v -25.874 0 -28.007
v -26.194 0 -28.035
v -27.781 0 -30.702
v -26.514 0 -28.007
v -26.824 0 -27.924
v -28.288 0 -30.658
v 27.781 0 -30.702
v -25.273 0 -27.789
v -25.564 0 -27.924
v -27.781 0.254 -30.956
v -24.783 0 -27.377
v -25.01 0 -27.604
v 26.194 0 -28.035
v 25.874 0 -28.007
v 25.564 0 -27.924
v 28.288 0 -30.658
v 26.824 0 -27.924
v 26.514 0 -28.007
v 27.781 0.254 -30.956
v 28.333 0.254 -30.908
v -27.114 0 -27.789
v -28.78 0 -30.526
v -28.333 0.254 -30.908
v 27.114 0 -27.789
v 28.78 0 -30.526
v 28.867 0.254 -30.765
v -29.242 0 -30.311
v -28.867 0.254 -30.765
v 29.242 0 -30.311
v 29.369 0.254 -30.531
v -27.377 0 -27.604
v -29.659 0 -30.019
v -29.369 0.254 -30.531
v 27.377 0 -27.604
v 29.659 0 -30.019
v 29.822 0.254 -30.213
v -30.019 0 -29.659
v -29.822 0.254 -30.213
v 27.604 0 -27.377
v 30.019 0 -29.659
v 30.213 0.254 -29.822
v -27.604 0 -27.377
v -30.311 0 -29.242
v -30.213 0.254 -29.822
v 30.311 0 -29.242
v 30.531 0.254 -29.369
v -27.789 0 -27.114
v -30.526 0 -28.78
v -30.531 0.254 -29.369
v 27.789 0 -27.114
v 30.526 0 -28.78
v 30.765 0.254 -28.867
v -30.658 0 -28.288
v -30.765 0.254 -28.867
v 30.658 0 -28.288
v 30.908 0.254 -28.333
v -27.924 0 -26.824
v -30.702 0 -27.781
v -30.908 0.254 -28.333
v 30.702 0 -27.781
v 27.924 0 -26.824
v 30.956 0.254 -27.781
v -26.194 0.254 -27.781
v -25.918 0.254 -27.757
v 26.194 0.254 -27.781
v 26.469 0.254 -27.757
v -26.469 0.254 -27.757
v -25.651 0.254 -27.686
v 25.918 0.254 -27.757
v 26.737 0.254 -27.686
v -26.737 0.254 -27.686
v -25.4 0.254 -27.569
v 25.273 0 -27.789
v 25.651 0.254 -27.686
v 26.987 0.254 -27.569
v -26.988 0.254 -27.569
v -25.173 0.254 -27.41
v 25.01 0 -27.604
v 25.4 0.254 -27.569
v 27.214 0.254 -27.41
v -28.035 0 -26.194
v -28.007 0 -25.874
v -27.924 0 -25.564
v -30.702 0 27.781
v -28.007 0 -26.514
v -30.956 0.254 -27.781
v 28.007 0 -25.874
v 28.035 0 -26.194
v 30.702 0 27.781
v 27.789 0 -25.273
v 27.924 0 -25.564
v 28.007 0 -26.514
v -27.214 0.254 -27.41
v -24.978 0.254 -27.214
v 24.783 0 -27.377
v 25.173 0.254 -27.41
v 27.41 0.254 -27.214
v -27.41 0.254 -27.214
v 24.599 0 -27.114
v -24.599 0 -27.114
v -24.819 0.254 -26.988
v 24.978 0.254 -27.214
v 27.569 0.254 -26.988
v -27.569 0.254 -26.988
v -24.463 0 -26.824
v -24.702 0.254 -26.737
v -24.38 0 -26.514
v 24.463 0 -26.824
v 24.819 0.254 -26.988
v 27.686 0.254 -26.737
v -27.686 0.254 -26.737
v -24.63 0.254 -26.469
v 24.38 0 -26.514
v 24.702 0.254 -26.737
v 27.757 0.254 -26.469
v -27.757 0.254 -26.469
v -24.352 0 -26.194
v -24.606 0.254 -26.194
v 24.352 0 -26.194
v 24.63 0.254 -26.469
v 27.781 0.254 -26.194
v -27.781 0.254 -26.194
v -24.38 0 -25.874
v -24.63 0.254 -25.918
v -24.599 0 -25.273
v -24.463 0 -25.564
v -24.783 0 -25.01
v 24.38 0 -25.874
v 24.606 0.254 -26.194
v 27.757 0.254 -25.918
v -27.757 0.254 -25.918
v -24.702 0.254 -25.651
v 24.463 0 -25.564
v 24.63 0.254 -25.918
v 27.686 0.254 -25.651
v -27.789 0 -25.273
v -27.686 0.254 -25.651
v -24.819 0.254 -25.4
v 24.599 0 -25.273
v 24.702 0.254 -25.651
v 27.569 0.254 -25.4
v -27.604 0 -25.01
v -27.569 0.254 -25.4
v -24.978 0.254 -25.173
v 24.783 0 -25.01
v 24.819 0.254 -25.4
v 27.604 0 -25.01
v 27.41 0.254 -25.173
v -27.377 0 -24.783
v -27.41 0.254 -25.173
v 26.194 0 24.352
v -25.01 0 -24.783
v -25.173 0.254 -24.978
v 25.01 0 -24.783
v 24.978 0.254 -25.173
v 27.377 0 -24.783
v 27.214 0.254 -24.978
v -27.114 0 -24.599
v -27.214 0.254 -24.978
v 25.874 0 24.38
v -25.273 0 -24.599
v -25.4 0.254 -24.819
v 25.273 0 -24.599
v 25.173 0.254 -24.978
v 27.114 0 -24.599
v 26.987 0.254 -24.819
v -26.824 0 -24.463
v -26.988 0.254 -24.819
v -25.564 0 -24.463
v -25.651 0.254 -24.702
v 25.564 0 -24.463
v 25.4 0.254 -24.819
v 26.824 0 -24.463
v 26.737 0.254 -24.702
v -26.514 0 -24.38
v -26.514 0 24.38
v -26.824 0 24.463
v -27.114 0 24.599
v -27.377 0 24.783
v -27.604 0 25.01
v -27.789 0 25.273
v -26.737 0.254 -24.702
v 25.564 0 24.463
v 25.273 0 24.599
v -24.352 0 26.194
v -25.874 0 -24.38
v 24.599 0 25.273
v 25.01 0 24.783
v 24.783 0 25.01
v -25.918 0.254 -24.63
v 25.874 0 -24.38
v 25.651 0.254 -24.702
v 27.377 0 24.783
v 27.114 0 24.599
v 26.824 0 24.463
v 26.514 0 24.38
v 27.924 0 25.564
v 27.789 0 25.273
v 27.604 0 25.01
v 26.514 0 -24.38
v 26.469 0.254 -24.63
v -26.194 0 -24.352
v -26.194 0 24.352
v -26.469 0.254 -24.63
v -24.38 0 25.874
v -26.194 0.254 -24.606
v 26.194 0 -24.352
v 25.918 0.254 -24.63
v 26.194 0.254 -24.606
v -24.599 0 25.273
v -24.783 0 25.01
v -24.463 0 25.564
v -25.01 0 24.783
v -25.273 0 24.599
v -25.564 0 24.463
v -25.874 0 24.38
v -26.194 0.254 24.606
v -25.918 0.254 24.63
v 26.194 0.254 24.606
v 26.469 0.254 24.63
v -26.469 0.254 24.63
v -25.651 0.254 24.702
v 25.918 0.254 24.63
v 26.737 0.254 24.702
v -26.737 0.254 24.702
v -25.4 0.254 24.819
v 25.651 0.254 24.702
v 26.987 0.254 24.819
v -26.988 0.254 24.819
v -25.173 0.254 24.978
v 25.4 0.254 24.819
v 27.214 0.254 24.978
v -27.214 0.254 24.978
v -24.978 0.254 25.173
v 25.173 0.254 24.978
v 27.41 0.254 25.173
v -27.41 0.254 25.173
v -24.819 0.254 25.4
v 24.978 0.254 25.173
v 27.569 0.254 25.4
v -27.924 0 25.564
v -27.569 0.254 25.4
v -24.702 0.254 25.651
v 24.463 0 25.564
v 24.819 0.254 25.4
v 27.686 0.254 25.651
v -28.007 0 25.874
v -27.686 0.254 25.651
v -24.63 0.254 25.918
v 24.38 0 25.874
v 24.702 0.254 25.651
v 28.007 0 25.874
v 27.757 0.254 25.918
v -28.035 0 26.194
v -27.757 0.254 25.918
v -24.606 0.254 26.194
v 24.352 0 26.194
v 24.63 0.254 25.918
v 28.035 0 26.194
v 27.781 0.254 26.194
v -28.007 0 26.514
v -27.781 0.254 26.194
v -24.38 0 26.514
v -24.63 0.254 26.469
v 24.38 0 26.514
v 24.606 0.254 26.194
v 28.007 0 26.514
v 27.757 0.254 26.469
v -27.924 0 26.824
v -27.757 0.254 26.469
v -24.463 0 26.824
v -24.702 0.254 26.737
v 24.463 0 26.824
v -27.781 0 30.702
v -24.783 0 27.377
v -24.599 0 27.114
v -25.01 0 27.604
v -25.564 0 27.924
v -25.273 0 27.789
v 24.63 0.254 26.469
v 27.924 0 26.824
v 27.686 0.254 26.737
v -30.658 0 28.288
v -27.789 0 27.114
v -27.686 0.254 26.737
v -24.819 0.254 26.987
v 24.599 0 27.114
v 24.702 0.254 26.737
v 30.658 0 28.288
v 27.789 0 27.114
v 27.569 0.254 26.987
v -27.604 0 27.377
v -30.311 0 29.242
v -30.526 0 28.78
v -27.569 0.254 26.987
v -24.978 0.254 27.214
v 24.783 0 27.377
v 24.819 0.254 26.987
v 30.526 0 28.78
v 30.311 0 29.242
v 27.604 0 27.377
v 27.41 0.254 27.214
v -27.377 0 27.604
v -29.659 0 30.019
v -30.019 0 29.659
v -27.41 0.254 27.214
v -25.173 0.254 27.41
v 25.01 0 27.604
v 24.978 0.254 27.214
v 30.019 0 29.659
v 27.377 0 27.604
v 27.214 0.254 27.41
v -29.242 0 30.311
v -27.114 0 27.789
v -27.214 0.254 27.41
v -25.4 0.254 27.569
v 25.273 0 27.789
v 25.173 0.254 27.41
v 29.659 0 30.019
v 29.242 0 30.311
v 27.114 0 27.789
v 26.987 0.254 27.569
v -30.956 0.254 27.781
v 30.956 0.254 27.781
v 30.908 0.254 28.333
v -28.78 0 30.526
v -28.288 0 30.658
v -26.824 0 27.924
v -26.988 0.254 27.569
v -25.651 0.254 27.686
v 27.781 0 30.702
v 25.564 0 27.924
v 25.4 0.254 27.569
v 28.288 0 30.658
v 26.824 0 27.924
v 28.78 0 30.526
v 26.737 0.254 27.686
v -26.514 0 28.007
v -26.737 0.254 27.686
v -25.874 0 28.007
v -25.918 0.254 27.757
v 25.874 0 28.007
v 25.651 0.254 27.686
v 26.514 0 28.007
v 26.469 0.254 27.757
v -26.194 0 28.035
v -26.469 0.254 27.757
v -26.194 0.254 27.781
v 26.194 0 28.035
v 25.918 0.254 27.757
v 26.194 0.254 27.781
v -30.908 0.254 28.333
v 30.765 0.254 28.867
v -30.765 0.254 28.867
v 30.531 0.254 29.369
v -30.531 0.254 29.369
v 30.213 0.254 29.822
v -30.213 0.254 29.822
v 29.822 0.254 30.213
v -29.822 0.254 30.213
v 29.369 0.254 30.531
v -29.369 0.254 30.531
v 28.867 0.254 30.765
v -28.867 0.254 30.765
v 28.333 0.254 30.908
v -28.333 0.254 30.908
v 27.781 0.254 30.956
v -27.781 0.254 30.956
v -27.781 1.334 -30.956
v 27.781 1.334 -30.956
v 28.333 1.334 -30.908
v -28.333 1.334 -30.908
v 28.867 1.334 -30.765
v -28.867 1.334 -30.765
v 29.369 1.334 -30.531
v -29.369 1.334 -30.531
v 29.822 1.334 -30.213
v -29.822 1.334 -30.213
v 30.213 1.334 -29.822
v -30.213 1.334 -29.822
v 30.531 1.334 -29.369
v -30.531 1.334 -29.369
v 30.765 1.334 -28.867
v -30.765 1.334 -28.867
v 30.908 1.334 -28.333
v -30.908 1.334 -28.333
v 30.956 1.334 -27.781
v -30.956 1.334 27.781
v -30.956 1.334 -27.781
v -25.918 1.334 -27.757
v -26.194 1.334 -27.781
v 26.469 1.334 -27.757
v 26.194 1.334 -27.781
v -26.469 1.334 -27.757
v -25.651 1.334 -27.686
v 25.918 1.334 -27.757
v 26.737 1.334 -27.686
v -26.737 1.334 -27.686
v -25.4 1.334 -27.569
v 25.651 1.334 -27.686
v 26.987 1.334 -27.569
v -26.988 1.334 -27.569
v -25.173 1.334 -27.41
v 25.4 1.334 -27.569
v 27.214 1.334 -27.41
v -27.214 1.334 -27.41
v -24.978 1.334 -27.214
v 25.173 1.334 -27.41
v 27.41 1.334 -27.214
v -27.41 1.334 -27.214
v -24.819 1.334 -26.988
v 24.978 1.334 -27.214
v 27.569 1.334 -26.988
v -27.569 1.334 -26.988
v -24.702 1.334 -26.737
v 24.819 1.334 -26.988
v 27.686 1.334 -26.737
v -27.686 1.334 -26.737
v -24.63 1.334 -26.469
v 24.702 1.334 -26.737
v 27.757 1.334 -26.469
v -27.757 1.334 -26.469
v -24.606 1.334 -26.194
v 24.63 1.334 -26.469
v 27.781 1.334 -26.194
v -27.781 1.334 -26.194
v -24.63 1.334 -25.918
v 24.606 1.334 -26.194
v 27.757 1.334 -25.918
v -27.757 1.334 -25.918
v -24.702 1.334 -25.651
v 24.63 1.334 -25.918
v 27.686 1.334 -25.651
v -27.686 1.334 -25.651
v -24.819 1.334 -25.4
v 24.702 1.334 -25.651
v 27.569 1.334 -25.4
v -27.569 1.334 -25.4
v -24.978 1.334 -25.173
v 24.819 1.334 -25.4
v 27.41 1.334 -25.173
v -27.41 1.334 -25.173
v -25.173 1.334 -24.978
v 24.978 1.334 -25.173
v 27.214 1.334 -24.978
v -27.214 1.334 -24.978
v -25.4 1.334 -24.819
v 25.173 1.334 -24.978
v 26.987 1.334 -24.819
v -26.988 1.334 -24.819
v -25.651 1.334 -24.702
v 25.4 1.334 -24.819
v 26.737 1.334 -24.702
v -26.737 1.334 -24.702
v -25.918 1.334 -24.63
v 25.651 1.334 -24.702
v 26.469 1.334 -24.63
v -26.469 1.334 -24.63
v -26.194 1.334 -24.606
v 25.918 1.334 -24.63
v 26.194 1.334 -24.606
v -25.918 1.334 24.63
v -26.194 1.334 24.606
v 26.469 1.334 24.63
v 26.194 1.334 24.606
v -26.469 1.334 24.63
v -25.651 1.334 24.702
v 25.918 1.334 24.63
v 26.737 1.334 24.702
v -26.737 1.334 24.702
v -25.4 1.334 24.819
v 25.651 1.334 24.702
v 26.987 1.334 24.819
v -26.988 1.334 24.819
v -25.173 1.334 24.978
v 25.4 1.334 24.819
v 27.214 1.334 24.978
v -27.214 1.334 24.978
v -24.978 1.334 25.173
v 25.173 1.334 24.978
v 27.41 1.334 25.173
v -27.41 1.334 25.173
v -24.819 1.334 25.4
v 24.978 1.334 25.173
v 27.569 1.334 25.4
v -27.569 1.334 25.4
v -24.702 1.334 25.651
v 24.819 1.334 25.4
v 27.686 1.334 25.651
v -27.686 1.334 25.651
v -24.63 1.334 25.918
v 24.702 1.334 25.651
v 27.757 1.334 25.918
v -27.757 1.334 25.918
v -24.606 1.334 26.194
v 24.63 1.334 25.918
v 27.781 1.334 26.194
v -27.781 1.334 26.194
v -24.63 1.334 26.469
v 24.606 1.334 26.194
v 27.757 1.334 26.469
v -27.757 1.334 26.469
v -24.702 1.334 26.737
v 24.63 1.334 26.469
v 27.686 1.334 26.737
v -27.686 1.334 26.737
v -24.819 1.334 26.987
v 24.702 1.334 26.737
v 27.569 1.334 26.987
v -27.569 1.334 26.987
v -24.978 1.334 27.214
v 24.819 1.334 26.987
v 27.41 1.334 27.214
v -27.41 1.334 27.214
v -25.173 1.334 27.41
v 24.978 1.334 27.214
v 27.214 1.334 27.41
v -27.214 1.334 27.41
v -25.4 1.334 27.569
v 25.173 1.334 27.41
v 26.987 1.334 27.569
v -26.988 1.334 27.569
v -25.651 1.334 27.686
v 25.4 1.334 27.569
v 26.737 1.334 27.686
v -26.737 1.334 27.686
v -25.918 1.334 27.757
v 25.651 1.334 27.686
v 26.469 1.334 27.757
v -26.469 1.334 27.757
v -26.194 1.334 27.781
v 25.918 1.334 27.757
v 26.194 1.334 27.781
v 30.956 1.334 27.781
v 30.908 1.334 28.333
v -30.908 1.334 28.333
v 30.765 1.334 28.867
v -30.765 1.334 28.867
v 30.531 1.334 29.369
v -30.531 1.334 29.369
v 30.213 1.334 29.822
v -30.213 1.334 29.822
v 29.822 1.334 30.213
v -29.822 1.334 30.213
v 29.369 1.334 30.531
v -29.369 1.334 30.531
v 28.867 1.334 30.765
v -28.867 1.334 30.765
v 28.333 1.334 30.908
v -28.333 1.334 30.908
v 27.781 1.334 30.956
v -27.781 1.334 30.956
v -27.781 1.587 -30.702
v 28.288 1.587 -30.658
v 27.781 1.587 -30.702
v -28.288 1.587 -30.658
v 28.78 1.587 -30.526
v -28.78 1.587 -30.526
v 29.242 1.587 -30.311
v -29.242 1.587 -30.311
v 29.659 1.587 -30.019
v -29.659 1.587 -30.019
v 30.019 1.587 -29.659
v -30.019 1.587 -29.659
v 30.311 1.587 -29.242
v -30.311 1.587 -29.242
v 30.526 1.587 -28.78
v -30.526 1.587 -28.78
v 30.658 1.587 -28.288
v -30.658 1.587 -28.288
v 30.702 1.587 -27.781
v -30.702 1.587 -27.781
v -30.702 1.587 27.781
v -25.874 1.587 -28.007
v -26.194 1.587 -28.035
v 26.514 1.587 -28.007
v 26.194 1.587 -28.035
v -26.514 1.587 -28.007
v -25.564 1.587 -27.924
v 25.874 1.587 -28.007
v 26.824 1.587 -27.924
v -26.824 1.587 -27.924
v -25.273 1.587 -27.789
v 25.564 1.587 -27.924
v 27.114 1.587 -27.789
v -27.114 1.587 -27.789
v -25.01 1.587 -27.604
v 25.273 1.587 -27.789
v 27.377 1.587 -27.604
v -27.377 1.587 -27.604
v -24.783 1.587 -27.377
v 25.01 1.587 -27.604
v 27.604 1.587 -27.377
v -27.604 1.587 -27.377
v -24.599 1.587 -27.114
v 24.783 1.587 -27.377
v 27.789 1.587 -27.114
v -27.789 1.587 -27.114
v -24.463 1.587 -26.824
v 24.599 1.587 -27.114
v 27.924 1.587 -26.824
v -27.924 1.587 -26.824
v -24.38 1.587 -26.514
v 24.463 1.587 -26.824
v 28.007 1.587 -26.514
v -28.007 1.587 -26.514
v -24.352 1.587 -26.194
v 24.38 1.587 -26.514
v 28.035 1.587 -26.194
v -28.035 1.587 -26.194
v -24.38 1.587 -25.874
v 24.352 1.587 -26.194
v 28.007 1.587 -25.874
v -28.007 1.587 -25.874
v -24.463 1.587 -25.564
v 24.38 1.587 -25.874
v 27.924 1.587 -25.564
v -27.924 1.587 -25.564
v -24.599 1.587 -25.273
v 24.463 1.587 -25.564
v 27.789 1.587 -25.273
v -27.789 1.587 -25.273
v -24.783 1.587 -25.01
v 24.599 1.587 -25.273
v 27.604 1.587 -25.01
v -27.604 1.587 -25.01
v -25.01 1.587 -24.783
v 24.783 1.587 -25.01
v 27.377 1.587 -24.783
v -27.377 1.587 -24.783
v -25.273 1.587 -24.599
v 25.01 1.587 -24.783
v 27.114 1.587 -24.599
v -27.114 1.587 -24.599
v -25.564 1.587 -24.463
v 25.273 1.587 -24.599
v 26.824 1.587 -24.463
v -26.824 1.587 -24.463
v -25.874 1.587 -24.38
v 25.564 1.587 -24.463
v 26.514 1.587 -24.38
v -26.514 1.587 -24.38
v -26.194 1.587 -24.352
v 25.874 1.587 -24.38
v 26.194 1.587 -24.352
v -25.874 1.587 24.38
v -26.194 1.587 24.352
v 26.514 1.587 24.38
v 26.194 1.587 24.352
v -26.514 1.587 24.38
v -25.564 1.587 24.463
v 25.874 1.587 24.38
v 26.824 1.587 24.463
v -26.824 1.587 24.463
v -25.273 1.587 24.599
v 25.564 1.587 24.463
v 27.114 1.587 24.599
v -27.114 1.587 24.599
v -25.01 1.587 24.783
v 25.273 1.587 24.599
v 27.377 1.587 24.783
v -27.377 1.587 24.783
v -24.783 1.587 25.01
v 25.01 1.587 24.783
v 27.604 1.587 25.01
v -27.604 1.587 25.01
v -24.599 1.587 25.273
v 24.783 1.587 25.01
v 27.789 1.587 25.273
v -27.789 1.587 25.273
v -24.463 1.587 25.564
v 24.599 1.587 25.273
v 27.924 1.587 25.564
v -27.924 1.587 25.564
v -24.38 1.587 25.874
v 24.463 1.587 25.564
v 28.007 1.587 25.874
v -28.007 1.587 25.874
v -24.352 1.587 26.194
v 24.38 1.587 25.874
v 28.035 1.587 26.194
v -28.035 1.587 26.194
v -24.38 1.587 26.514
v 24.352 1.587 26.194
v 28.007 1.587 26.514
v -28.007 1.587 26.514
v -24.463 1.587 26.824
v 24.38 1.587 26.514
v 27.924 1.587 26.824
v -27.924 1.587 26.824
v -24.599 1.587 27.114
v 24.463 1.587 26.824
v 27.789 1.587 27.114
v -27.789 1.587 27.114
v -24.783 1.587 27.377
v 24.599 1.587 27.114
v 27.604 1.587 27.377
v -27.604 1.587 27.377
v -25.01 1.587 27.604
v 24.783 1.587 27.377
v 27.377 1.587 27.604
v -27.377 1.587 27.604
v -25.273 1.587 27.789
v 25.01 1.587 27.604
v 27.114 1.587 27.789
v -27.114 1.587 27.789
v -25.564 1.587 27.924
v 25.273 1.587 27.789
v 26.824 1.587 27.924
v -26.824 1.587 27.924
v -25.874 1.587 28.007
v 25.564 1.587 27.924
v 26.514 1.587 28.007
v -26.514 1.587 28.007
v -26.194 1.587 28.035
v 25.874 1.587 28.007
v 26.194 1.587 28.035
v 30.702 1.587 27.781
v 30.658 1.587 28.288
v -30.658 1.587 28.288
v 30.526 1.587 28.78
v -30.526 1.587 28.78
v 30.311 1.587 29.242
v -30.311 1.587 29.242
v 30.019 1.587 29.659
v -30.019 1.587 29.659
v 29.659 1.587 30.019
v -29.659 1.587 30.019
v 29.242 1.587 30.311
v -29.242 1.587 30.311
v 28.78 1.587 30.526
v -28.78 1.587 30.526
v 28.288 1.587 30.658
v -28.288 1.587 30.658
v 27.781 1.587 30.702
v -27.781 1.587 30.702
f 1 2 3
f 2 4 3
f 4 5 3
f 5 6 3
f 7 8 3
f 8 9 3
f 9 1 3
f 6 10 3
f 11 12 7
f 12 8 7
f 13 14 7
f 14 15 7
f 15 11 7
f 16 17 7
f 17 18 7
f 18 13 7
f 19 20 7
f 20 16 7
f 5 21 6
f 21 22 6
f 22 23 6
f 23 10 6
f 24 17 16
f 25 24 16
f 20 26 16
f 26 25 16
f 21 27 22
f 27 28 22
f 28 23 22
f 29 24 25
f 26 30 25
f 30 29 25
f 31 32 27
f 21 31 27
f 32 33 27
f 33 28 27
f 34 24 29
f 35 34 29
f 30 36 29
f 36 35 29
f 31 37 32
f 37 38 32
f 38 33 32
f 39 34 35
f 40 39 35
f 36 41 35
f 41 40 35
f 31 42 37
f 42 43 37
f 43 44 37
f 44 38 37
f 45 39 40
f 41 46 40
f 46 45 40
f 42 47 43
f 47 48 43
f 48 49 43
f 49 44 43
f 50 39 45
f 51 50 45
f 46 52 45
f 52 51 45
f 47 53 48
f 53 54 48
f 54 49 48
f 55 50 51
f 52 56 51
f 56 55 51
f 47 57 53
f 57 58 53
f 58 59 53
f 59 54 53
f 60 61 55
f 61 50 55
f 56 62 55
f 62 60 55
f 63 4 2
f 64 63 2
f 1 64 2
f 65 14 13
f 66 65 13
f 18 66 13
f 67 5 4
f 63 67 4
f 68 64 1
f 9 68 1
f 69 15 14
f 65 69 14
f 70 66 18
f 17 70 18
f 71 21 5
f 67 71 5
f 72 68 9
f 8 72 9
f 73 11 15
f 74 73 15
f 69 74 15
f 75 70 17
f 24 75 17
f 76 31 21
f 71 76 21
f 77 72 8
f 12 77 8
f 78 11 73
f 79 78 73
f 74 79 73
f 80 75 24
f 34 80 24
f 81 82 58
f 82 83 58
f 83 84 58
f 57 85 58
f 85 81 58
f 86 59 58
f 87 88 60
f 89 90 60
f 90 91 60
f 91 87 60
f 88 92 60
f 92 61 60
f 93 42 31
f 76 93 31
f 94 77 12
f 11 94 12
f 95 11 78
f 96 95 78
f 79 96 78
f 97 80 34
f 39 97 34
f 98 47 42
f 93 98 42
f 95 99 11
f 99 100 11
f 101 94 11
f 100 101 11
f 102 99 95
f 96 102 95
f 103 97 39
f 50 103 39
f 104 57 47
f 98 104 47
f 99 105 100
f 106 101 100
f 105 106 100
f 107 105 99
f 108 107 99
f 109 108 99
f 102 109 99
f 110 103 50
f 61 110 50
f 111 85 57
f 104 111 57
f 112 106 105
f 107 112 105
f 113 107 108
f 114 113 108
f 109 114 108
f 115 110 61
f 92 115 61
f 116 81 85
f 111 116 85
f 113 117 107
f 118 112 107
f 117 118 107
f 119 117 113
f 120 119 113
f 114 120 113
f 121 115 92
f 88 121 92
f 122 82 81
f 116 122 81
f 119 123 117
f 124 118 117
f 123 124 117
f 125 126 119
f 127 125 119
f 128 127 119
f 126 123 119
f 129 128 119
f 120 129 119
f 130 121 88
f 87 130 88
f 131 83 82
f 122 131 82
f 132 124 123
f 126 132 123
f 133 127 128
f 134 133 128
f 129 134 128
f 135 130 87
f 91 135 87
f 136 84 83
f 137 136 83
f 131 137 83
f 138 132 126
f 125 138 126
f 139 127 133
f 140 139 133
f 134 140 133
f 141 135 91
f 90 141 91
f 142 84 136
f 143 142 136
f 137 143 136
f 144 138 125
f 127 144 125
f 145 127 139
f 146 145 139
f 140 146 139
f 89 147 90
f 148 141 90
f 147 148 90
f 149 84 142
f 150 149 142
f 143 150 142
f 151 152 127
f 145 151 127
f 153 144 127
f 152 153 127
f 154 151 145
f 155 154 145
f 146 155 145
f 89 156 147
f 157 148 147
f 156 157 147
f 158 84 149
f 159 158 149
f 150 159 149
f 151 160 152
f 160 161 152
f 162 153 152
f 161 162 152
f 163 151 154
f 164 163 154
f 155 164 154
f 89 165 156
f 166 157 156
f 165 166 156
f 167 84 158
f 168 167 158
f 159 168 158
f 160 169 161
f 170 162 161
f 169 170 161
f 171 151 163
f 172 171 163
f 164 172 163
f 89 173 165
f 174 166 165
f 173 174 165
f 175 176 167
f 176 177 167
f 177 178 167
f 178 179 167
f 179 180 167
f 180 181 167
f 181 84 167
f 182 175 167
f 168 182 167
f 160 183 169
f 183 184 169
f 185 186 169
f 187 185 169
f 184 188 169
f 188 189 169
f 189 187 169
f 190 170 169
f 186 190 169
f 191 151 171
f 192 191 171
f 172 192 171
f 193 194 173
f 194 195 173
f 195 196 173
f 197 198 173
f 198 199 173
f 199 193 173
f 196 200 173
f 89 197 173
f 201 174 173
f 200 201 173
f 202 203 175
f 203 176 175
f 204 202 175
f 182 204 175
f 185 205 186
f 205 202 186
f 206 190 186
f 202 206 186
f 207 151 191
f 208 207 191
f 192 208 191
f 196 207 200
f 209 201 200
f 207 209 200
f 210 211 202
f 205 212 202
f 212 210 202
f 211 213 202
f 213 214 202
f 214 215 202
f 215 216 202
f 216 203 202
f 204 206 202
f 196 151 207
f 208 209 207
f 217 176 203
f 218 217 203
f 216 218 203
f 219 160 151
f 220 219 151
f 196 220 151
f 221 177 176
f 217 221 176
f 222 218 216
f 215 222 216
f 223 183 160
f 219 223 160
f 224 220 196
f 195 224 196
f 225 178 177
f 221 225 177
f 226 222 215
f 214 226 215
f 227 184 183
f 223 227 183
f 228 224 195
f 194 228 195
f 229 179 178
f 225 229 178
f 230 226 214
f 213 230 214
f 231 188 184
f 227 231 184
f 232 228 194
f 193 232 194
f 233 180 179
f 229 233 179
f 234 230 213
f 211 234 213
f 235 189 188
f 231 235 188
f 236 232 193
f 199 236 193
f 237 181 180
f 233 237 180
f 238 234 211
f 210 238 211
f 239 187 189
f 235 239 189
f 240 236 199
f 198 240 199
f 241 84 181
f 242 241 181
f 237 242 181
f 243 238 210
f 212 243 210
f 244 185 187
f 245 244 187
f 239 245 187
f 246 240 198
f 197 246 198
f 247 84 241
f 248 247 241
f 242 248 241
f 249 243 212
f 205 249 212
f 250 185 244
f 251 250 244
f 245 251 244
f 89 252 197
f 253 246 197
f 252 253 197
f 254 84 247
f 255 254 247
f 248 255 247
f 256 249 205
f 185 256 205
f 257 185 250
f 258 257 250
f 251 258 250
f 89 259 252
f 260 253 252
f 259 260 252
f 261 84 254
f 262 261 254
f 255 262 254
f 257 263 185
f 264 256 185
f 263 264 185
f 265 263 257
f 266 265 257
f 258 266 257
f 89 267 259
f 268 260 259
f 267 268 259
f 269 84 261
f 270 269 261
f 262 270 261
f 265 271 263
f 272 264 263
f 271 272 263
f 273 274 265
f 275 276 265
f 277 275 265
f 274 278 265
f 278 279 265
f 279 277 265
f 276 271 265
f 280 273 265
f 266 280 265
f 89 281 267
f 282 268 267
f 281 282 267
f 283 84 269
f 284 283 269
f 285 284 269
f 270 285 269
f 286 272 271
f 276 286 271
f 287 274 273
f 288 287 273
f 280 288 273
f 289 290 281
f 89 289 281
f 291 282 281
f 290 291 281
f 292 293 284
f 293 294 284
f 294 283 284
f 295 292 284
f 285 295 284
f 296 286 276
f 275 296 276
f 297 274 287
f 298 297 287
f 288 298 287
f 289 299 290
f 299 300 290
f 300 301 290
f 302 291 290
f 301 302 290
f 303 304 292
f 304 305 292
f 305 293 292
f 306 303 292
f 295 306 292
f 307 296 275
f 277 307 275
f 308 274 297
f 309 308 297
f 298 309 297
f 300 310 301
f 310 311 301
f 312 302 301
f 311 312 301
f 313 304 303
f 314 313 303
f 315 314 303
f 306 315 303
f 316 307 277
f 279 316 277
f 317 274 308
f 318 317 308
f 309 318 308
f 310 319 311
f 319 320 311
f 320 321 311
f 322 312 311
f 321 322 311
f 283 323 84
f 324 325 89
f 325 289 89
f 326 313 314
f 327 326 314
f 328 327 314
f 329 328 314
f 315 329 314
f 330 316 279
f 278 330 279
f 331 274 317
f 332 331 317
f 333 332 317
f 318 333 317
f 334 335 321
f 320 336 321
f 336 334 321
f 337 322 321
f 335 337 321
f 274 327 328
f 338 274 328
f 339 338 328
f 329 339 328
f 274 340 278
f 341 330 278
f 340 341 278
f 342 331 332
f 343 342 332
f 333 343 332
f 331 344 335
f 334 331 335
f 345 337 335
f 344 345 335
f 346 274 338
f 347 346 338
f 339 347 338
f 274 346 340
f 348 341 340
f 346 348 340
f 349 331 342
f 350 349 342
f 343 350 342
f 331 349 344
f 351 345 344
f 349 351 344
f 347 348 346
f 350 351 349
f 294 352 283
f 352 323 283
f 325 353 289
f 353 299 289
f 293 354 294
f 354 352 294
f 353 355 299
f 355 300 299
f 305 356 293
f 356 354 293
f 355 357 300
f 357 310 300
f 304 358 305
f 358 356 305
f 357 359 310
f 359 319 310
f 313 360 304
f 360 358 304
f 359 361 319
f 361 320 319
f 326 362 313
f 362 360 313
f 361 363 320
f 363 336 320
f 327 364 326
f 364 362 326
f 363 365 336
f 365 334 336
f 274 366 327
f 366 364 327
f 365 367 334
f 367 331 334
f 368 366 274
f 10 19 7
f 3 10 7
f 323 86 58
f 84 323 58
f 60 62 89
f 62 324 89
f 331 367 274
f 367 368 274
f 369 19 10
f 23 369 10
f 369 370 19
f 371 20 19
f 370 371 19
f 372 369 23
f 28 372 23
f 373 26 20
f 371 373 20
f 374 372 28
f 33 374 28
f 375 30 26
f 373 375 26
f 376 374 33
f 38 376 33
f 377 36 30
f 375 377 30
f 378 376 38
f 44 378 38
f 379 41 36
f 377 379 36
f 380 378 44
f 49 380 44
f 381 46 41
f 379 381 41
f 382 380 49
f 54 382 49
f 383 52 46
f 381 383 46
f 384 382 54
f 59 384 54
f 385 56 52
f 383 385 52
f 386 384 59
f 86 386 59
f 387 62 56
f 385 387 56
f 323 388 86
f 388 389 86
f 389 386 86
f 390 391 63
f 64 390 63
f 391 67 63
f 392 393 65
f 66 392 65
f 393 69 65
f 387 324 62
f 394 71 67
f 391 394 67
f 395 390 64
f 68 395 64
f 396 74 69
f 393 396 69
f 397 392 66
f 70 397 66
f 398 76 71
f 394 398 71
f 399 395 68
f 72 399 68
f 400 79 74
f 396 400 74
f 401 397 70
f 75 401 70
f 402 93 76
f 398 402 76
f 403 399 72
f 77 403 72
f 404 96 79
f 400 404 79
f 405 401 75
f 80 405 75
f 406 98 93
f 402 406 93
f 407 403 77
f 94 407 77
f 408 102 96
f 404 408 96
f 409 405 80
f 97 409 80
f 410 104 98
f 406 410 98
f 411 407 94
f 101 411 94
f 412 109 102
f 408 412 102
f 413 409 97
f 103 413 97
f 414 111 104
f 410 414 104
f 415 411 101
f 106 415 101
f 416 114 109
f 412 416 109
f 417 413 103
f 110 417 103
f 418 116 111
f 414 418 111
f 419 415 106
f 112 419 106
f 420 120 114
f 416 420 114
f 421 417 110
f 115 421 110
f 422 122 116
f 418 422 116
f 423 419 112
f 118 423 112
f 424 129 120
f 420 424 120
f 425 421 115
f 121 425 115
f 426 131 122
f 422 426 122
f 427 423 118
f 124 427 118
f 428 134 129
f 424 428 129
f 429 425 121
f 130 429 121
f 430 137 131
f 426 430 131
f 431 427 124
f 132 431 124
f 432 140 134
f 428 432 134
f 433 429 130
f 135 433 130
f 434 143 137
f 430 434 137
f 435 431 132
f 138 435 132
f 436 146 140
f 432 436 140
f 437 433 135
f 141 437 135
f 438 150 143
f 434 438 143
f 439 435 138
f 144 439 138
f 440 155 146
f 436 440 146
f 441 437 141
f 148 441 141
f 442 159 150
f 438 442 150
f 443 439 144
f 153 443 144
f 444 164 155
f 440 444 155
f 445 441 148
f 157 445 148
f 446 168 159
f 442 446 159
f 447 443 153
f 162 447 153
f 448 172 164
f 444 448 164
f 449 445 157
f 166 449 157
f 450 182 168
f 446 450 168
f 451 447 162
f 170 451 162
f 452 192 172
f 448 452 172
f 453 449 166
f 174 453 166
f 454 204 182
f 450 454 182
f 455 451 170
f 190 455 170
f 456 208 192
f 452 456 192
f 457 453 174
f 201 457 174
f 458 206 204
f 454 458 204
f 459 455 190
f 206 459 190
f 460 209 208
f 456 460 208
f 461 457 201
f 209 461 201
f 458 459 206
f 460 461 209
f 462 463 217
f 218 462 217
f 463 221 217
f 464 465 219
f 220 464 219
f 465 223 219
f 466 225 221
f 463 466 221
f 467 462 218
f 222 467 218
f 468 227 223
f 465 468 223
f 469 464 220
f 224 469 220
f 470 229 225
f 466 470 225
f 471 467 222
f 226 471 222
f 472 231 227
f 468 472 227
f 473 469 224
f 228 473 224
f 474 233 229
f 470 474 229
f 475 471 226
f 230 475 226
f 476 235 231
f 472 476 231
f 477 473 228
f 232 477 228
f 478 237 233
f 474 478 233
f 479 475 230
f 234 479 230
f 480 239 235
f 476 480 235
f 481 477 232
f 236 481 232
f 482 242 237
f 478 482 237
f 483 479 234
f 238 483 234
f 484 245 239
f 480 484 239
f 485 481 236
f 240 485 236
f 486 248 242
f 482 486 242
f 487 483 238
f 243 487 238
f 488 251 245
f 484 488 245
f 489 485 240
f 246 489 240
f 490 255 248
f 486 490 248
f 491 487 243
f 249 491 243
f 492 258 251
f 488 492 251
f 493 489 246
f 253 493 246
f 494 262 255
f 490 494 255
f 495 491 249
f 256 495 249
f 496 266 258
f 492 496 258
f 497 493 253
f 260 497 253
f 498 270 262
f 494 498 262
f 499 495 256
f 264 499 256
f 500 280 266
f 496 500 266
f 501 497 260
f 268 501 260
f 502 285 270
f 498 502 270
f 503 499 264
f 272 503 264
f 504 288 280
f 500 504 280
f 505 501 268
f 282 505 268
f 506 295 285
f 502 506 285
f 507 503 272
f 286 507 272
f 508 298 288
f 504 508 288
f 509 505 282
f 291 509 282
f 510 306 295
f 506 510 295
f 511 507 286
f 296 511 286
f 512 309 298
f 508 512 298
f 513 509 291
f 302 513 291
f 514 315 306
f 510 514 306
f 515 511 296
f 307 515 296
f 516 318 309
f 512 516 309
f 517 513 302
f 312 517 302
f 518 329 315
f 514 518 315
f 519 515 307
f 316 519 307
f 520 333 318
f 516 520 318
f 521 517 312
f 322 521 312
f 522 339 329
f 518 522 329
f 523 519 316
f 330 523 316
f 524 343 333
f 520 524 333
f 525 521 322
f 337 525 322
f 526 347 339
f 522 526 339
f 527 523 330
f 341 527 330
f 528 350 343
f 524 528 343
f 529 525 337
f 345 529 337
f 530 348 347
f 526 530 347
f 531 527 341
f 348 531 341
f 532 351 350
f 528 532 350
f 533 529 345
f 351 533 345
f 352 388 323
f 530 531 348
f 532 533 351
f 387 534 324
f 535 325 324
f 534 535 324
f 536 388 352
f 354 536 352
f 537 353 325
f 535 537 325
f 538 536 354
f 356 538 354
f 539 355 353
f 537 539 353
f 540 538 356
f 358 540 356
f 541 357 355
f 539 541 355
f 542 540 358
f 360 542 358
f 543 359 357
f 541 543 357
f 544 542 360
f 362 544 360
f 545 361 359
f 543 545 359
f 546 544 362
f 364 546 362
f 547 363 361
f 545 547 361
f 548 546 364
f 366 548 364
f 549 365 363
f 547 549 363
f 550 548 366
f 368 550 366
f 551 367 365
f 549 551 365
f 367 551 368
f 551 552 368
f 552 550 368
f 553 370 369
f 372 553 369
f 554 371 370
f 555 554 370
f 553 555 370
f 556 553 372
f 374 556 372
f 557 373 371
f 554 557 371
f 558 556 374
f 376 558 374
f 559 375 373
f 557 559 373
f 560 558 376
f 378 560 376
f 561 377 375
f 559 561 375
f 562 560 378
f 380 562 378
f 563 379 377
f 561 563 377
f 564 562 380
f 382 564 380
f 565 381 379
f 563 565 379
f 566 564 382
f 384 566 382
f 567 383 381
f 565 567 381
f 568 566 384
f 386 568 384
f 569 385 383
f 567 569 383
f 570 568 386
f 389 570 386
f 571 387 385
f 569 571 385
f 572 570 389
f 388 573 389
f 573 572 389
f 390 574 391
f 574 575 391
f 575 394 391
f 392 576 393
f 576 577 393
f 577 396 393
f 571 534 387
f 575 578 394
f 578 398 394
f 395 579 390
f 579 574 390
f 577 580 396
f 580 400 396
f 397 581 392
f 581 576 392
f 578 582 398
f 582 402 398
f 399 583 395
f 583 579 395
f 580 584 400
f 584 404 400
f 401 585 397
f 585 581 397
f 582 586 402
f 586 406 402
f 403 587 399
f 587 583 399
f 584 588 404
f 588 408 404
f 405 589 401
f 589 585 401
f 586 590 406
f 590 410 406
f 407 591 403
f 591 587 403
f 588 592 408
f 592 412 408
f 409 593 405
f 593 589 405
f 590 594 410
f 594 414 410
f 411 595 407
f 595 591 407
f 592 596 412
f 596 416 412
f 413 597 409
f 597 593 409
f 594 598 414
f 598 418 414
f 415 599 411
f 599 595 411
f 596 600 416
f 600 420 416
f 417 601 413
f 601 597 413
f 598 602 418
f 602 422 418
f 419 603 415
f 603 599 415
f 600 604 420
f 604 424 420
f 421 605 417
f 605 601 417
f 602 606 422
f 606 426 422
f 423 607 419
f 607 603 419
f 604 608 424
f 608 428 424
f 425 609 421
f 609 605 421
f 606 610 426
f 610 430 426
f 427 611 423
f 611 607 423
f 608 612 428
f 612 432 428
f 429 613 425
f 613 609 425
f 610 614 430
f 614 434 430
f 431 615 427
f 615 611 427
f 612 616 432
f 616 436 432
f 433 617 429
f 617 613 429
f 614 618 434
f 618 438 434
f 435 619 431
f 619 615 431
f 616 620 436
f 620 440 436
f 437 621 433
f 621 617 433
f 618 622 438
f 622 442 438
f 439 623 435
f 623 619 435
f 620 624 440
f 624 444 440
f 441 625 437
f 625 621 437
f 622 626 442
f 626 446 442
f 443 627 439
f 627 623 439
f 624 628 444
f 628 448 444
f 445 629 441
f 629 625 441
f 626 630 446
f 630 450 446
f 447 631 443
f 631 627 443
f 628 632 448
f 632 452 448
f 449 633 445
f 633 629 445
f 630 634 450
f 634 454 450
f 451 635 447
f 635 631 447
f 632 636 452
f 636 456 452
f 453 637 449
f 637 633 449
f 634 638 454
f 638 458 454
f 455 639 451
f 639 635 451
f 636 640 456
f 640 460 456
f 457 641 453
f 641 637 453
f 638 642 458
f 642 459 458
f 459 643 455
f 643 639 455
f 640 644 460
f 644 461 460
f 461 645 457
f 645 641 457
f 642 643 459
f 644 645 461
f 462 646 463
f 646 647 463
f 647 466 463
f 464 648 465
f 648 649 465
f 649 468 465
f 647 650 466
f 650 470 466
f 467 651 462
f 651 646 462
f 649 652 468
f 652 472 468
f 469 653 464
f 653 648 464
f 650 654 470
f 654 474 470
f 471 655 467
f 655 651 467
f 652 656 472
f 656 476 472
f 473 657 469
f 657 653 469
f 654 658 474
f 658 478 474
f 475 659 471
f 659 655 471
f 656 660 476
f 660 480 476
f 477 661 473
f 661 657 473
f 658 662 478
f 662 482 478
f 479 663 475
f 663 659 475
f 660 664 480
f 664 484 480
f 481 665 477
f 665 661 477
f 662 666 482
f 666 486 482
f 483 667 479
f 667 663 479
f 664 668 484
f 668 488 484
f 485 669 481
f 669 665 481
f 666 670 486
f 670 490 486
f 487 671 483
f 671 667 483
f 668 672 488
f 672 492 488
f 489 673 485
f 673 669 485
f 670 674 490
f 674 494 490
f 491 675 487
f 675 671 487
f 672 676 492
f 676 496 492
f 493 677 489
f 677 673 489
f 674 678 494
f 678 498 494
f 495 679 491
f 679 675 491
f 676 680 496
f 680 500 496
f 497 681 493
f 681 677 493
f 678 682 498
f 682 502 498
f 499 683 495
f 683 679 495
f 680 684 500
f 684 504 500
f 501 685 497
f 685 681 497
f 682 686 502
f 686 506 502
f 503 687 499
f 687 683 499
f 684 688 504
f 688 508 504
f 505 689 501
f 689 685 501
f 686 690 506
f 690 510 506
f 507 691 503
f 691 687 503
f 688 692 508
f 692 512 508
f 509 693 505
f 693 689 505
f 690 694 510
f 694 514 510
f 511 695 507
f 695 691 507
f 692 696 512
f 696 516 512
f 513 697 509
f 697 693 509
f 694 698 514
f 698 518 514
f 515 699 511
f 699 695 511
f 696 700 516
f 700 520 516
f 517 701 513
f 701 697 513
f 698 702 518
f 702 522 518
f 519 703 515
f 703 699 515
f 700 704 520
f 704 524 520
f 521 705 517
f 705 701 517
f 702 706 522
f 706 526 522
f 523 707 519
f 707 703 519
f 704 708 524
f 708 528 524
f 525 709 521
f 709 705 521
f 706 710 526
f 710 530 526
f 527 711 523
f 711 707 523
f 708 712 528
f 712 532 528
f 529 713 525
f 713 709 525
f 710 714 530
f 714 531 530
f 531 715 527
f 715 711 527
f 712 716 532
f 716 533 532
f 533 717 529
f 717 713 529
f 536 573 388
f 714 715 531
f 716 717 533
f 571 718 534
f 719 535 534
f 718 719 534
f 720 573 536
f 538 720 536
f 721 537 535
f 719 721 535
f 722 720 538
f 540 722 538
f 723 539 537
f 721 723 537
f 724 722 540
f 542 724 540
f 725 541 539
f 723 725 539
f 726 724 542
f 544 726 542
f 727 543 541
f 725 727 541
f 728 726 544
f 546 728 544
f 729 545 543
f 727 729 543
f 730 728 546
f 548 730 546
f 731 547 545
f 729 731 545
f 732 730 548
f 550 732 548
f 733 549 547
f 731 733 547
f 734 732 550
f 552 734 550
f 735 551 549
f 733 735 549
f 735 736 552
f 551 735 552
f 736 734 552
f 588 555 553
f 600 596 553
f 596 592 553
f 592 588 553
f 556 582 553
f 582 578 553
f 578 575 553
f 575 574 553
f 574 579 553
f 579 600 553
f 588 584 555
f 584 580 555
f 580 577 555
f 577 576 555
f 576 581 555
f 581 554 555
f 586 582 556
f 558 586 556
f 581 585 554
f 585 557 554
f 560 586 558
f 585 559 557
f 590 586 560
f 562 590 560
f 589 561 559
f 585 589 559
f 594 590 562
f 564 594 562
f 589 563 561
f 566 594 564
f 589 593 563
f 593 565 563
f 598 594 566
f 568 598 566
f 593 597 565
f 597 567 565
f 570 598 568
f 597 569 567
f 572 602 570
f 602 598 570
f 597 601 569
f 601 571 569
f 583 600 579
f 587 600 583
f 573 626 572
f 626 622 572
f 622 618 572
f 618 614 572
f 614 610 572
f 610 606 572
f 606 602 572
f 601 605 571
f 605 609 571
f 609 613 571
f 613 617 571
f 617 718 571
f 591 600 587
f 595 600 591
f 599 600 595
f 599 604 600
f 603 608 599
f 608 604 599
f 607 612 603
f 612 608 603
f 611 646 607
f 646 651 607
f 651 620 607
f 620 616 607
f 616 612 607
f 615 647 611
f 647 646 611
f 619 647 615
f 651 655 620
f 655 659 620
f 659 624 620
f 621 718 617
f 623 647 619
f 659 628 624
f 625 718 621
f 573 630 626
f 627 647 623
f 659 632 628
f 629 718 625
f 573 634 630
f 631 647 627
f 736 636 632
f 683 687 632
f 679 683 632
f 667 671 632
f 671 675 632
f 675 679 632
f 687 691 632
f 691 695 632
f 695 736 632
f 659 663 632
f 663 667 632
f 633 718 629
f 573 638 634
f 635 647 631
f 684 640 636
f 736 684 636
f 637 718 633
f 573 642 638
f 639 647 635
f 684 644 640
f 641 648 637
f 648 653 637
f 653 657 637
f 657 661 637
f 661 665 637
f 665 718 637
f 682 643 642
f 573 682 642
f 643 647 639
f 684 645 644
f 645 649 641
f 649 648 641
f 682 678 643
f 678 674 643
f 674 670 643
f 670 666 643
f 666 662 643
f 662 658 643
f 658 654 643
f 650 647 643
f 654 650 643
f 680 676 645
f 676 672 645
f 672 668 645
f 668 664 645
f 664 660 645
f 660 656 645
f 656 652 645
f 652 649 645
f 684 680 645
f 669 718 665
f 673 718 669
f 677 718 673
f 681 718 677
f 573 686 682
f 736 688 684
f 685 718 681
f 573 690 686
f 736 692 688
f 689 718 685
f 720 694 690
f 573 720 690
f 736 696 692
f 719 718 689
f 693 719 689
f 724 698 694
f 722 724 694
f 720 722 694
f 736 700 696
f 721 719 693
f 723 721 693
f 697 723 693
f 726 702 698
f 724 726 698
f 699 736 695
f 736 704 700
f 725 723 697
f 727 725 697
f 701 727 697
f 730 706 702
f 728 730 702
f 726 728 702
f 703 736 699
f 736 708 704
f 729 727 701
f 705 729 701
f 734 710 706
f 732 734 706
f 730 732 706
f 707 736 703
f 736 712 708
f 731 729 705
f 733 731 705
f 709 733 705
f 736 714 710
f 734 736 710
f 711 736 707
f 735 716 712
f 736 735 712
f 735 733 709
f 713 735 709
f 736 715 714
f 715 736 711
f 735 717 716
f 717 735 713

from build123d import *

# Parameters (mm, degrees)
SKETCH2_W           = 61.9125
SKETCH2_H           = 61.9125
SKETCH2_R           = 1.5875
BOSS_EXTRUDE1_DEPTH = 1.5875
FILLET1_R           = 3.175
CHAMFER1_SIZE       = 0.254


with BuildPart() as part:
    # Sketch2 → Boss-Extrude1 (new body)
    with BuildSketch(Plane(origin=(0, 0, 0), x_dir=(1, 0, 0), z_dir=(0, 1, 0))):
        Rectangle(SKETCH2_W, SKETCH2_H)
        with Locations(Location((-26.19375, 26.19375, 0), (0, 0, 270))):
            Circle(SKETCH2_R, mode=Mode.SUBTRACT)
        with Locations(Location((26.19375, 26.19375, 0), (0, 0, 270))):
            Circle(SKETCH2_R, mode=Mode.SUBTRACT)
        with Locations(Location((26.19375, -26.19375, 0), (0, 0, 270))):
            Circle(SKETCH2_R, mode=Mode.SUBTRACT)
        with Locations(Location((-26.19375, -26.19375, 0), (0, 0, 270))):
            Circle(SKETCH2_R, mode=Mode.SUBTRACT)
    extrude(amount=BOSS_EXTRUDE1_DEPTH)

    # Fillet1
    fillet1_edges = [part.edges().sort_by_distance(p)[0] for p in [
        (30.95625, 0.79375, 30.95625),
        (-30.95625, 0.79375, 30.95625),
        (-30.95625, 0.79375, -30.95625),
        (30.95625, 0.79375, -30.95625),
    ]]
    fillet(fillet1_edges, radius=FILLET1_R)

    # Chamfer1
    chamfer1_edges = [part.edges().sort_by_distance(p)[0] for p in [
        (-26.19375, 0, -27.78125),
        (-26.19375, 1.5875, -27.78125),
        (26.19375, 0, -27.78125),
        (26.19375, 1.5875, -27.78125),
        (26.19375, 0, 24.60625),
        (26.19375, 1.5875, 24.60625),
        (-26.19375, 0, 24.60625),
        (-26.19375, 1.5875, 24.60625),
        (30.95625, 0, 0),
        (30.95625, 1.5875, 0),
        (0, 0, 30.95625),
        (-30.95625, 0, 0),
        (0, 0, -30.95625),
        (-30.02631403, 0, 30.02631403),
        (30.02631403, 0, -30.02631403),
        (-30.02631403, 0, -30.02631403),
        (30.02631403, 0, 30.02631403),
        (0, 1.5875, 30.95625),
        (0, 1.5875, -30.95625),
        (-30.95625, 1.5875, 0),
        (-30.02631403, 1.5875, 30.02631403),
        (30.02631403, 1.5875, -30.02631403),
        (-30.02631403, 1.5875, -30.02631403),
        (30.02631403, 1.5875, 30.02631403),
    ]]
    chamfer(chamfer1_edges, length=CHAMFER1_SIZE)


solid = part.part
